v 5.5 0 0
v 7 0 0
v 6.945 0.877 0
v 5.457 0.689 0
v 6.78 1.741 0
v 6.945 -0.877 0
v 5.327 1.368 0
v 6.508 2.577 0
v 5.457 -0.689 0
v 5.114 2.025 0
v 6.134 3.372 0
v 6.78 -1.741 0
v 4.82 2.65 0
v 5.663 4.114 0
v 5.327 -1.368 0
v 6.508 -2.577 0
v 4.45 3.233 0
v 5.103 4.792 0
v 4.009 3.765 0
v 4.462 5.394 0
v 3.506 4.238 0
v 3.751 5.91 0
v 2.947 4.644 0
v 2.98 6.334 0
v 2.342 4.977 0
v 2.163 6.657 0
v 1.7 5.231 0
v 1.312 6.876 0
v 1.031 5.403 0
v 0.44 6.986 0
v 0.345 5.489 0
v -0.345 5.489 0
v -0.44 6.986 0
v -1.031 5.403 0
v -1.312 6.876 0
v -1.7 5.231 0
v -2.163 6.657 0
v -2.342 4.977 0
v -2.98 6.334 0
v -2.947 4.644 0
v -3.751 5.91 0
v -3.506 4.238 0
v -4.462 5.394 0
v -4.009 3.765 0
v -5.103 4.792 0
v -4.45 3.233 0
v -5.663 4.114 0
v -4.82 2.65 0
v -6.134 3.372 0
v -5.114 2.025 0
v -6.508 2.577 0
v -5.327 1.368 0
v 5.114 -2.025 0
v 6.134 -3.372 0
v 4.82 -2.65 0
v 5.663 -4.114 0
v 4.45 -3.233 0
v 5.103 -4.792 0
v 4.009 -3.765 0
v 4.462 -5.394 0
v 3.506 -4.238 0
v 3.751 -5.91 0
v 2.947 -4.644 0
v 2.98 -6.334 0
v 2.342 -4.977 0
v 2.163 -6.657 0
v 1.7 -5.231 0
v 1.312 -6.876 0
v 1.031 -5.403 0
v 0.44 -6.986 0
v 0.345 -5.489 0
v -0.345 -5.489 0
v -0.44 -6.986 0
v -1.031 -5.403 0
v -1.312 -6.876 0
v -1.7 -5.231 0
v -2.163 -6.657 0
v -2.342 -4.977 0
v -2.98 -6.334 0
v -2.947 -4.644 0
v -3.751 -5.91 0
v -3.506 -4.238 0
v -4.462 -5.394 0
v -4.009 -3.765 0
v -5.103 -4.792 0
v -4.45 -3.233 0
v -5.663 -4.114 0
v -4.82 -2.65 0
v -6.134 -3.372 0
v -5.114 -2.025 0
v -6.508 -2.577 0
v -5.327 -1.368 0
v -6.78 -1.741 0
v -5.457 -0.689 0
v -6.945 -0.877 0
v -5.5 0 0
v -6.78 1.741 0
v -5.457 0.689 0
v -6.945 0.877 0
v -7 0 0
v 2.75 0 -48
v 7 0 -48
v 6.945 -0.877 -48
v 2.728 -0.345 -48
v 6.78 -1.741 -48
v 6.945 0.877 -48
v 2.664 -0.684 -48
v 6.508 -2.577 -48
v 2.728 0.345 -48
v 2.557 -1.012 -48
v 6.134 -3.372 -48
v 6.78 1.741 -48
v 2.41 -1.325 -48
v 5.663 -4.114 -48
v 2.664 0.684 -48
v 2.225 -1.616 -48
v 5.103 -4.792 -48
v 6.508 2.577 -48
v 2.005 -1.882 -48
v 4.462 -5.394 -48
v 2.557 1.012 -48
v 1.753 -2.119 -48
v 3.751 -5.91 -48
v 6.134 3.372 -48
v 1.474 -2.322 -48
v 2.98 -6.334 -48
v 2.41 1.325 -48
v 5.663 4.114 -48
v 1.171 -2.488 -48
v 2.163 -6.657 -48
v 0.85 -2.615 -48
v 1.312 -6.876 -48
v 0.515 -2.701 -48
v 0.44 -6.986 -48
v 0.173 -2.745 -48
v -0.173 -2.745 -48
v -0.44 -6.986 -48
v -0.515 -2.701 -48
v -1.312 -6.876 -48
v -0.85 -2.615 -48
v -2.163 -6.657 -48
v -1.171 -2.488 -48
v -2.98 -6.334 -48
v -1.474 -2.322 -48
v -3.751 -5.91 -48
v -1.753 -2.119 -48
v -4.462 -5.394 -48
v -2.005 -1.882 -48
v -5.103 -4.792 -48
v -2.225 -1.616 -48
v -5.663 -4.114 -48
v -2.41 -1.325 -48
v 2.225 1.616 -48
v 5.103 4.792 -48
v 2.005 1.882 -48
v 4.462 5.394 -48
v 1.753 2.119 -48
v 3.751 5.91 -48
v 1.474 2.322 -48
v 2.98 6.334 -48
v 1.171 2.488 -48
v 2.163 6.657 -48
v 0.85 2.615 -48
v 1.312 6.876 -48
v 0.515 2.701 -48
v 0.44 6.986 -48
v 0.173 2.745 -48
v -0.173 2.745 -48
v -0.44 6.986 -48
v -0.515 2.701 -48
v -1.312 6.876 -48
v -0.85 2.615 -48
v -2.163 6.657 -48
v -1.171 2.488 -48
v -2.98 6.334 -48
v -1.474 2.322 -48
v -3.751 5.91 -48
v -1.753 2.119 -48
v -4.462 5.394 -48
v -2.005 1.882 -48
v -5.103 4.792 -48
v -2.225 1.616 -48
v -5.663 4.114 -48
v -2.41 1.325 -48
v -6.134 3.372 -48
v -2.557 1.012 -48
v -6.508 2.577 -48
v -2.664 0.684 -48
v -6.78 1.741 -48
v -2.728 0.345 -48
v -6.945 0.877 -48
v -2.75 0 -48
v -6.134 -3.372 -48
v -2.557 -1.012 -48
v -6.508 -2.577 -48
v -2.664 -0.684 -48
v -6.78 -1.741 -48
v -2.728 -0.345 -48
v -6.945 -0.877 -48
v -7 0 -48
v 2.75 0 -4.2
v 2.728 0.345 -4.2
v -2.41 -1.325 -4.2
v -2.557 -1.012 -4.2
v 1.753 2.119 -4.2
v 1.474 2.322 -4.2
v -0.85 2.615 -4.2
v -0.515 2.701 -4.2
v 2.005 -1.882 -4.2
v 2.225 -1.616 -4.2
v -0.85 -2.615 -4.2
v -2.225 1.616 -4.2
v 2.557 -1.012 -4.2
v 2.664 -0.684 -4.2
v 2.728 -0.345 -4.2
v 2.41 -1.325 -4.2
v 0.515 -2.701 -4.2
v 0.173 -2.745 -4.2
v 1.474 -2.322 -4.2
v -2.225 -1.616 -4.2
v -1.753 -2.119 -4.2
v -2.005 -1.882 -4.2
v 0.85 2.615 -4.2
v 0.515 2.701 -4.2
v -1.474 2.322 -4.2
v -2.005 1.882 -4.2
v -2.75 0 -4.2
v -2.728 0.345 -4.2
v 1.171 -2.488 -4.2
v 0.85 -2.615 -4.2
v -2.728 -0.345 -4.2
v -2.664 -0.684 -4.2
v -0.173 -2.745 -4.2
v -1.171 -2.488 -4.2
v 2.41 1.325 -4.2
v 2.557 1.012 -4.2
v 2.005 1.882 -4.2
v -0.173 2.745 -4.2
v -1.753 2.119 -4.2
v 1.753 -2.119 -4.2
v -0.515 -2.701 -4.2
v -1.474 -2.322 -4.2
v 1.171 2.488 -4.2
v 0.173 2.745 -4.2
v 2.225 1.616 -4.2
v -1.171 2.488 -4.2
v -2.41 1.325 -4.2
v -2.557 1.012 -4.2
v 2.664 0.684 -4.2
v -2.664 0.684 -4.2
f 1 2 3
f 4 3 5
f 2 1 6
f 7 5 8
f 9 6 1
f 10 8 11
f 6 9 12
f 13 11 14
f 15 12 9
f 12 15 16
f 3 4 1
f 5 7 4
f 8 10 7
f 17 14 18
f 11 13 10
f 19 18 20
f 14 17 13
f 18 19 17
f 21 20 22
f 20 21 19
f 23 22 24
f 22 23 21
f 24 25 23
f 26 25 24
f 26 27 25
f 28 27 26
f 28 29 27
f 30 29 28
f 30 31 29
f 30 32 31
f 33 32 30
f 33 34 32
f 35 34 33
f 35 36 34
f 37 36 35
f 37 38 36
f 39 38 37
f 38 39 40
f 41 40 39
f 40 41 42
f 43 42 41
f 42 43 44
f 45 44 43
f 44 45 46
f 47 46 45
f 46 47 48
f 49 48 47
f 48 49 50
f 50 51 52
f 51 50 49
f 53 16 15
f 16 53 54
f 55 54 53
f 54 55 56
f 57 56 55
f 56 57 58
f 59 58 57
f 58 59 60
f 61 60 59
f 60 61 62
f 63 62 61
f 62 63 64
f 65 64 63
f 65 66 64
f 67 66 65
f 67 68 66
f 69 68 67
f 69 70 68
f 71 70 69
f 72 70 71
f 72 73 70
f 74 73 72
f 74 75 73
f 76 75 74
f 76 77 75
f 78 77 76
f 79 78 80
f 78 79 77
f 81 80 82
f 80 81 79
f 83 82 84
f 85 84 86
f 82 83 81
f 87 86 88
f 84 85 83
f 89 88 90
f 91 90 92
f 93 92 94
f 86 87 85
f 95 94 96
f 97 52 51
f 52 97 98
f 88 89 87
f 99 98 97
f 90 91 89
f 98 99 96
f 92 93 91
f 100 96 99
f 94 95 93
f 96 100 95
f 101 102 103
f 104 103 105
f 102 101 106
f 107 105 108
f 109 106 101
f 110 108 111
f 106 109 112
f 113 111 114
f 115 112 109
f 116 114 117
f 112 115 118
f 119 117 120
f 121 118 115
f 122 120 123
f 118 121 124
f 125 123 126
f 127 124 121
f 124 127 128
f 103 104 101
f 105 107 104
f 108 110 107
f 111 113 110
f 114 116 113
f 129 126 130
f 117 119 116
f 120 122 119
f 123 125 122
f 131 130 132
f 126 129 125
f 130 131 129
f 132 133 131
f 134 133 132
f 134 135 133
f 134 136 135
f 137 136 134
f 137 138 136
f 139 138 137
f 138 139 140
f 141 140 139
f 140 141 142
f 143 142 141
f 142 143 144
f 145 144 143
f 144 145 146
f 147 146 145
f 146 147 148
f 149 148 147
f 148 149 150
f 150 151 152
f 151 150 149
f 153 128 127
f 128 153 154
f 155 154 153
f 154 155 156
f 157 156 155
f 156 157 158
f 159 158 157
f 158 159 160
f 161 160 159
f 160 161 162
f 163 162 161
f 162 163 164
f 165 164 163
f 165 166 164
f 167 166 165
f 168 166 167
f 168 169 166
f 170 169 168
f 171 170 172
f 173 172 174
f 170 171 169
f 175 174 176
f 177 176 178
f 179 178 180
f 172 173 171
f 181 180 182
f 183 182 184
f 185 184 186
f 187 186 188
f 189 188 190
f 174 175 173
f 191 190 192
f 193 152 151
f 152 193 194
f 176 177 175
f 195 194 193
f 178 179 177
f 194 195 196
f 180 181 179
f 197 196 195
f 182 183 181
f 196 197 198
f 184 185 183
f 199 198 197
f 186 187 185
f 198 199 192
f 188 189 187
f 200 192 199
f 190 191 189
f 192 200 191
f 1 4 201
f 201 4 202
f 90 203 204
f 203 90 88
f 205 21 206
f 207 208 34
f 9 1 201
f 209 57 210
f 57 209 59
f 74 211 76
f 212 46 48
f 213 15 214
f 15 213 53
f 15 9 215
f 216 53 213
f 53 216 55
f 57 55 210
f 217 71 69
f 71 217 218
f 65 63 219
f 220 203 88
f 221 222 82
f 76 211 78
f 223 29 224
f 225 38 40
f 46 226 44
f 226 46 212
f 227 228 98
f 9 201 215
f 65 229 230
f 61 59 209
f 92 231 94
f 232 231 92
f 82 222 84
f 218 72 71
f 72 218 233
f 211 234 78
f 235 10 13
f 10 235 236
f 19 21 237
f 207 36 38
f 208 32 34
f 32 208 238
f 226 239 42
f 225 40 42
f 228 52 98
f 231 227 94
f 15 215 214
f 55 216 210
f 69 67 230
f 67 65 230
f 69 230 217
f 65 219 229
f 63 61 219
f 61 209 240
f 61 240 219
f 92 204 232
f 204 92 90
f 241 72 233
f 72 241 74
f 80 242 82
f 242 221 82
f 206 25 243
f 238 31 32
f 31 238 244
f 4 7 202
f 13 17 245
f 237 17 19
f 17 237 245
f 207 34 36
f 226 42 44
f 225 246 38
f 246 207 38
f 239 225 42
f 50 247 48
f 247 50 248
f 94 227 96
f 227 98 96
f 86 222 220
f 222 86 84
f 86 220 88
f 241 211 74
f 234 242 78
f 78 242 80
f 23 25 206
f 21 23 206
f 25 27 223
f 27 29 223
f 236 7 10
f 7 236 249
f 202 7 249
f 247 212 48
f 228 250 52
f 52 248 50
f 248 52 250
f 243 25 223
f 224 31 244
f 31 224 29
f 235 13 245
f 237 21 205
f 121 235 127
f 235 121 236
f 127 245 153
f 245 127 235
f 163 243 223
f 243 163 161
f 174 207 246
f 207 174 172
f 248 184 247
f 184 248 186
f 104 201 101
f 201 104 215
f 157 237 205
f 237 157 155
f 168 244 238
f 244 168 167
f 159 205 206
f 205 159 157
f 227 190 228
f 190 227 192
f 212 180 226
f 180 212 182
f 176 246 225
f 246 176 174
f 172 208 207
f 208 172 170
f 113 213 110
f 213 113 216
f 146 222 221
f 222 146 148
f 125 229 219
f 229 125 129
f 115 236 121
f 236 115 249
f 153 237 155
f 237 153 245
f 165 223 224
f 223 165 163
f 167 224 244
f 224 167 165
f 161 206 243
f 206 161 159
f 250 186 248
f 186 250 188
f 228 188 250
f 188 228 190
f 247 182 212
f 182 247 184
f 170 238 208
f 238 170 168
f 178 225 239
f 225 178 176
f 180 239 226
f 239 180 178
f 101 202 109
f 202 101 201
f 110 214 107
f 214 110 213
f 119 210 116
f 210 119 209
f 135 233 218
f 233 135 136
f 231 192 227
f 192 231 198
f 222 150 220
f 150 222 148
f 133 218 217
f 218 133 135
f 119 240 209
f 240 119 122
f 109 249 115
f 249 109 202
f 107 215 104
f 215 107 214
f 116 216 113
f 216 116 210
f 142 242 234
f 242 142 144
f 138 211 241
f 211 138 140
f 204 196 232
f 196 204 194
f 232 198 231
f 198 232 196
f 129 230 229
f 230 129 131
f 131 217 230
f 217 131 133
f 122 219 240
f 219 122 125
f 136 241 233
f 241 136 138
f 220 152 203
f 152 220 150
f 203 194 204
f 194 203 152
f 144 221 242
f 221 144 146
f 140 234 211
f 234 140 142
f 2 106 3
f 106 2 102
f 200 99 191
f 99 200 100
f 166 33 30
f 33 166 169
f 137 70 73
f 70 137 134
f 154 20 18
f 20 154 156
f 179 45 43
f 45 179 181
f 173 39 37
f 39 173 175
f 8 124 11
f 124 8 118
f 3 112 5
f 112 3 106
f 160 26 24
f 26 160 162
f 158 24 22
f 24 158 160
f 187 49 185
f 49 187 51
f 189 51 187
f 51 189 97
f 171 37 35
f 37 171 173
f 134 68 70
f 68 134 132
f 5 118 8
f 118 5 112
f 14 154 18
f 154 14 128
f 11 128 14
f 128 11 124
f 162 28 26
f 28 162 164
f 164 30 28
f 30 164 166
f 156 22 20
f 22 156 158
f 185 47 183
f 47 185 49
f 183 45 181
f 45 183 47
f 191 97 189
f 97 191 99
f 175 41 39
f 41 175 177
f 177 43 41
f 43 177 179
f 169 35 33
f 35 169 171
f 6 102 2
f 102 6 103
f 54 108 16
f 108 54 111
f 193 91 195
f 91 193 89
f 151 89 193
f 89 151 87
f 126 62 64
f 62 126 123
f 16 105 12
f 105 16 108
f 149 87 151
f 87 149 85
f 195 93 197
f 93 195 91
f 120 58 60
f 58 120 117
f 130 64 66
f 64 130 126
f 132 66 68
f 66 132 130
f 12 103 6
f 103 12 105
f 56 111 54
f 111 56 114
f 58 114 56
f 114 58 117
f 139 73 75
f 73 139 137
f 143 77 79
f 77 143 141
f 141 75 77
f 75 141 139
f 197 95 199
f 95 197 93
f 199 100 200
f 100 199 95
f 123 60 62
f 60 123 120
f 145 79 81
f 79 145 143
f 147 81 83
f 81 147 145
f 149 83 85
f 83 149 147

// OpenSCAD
$fn = 50;


difference() {
	union() {
		translate(v = [0, 0, -48.0000000000]) {
			cylinder(h = 48, r = 7.0000000000);
		}
		cylinder(h = 0, r = 17.0000000000);
	}
	union() {
		translate(v = [0, 0, 0]) {
			rotate(a = [0, 0, 0]) {
				difference() {
					union() {
						#translate(v = [0, 0, -48.0000000000]) {
							cylinder(h = 48, r = 2.2500000000);
						}
						#translate(v = [0, 0, -4.2000000000]) {
							cylinder(h = 4.2000000000, r1 = 2.7500000000, r2 = 5.5000000000);
						}
						#translate(v = [0, 0, -48.0000000000]) {
							cylinder(h = 48, r = 2.7500000000);
						}
						#translate(v = [0, 0, -48.0000000000]) {
							cylinder(h = 48, r = 2.2500000000);
						}
					}
					union();
				}
			}
		}
	}
}
